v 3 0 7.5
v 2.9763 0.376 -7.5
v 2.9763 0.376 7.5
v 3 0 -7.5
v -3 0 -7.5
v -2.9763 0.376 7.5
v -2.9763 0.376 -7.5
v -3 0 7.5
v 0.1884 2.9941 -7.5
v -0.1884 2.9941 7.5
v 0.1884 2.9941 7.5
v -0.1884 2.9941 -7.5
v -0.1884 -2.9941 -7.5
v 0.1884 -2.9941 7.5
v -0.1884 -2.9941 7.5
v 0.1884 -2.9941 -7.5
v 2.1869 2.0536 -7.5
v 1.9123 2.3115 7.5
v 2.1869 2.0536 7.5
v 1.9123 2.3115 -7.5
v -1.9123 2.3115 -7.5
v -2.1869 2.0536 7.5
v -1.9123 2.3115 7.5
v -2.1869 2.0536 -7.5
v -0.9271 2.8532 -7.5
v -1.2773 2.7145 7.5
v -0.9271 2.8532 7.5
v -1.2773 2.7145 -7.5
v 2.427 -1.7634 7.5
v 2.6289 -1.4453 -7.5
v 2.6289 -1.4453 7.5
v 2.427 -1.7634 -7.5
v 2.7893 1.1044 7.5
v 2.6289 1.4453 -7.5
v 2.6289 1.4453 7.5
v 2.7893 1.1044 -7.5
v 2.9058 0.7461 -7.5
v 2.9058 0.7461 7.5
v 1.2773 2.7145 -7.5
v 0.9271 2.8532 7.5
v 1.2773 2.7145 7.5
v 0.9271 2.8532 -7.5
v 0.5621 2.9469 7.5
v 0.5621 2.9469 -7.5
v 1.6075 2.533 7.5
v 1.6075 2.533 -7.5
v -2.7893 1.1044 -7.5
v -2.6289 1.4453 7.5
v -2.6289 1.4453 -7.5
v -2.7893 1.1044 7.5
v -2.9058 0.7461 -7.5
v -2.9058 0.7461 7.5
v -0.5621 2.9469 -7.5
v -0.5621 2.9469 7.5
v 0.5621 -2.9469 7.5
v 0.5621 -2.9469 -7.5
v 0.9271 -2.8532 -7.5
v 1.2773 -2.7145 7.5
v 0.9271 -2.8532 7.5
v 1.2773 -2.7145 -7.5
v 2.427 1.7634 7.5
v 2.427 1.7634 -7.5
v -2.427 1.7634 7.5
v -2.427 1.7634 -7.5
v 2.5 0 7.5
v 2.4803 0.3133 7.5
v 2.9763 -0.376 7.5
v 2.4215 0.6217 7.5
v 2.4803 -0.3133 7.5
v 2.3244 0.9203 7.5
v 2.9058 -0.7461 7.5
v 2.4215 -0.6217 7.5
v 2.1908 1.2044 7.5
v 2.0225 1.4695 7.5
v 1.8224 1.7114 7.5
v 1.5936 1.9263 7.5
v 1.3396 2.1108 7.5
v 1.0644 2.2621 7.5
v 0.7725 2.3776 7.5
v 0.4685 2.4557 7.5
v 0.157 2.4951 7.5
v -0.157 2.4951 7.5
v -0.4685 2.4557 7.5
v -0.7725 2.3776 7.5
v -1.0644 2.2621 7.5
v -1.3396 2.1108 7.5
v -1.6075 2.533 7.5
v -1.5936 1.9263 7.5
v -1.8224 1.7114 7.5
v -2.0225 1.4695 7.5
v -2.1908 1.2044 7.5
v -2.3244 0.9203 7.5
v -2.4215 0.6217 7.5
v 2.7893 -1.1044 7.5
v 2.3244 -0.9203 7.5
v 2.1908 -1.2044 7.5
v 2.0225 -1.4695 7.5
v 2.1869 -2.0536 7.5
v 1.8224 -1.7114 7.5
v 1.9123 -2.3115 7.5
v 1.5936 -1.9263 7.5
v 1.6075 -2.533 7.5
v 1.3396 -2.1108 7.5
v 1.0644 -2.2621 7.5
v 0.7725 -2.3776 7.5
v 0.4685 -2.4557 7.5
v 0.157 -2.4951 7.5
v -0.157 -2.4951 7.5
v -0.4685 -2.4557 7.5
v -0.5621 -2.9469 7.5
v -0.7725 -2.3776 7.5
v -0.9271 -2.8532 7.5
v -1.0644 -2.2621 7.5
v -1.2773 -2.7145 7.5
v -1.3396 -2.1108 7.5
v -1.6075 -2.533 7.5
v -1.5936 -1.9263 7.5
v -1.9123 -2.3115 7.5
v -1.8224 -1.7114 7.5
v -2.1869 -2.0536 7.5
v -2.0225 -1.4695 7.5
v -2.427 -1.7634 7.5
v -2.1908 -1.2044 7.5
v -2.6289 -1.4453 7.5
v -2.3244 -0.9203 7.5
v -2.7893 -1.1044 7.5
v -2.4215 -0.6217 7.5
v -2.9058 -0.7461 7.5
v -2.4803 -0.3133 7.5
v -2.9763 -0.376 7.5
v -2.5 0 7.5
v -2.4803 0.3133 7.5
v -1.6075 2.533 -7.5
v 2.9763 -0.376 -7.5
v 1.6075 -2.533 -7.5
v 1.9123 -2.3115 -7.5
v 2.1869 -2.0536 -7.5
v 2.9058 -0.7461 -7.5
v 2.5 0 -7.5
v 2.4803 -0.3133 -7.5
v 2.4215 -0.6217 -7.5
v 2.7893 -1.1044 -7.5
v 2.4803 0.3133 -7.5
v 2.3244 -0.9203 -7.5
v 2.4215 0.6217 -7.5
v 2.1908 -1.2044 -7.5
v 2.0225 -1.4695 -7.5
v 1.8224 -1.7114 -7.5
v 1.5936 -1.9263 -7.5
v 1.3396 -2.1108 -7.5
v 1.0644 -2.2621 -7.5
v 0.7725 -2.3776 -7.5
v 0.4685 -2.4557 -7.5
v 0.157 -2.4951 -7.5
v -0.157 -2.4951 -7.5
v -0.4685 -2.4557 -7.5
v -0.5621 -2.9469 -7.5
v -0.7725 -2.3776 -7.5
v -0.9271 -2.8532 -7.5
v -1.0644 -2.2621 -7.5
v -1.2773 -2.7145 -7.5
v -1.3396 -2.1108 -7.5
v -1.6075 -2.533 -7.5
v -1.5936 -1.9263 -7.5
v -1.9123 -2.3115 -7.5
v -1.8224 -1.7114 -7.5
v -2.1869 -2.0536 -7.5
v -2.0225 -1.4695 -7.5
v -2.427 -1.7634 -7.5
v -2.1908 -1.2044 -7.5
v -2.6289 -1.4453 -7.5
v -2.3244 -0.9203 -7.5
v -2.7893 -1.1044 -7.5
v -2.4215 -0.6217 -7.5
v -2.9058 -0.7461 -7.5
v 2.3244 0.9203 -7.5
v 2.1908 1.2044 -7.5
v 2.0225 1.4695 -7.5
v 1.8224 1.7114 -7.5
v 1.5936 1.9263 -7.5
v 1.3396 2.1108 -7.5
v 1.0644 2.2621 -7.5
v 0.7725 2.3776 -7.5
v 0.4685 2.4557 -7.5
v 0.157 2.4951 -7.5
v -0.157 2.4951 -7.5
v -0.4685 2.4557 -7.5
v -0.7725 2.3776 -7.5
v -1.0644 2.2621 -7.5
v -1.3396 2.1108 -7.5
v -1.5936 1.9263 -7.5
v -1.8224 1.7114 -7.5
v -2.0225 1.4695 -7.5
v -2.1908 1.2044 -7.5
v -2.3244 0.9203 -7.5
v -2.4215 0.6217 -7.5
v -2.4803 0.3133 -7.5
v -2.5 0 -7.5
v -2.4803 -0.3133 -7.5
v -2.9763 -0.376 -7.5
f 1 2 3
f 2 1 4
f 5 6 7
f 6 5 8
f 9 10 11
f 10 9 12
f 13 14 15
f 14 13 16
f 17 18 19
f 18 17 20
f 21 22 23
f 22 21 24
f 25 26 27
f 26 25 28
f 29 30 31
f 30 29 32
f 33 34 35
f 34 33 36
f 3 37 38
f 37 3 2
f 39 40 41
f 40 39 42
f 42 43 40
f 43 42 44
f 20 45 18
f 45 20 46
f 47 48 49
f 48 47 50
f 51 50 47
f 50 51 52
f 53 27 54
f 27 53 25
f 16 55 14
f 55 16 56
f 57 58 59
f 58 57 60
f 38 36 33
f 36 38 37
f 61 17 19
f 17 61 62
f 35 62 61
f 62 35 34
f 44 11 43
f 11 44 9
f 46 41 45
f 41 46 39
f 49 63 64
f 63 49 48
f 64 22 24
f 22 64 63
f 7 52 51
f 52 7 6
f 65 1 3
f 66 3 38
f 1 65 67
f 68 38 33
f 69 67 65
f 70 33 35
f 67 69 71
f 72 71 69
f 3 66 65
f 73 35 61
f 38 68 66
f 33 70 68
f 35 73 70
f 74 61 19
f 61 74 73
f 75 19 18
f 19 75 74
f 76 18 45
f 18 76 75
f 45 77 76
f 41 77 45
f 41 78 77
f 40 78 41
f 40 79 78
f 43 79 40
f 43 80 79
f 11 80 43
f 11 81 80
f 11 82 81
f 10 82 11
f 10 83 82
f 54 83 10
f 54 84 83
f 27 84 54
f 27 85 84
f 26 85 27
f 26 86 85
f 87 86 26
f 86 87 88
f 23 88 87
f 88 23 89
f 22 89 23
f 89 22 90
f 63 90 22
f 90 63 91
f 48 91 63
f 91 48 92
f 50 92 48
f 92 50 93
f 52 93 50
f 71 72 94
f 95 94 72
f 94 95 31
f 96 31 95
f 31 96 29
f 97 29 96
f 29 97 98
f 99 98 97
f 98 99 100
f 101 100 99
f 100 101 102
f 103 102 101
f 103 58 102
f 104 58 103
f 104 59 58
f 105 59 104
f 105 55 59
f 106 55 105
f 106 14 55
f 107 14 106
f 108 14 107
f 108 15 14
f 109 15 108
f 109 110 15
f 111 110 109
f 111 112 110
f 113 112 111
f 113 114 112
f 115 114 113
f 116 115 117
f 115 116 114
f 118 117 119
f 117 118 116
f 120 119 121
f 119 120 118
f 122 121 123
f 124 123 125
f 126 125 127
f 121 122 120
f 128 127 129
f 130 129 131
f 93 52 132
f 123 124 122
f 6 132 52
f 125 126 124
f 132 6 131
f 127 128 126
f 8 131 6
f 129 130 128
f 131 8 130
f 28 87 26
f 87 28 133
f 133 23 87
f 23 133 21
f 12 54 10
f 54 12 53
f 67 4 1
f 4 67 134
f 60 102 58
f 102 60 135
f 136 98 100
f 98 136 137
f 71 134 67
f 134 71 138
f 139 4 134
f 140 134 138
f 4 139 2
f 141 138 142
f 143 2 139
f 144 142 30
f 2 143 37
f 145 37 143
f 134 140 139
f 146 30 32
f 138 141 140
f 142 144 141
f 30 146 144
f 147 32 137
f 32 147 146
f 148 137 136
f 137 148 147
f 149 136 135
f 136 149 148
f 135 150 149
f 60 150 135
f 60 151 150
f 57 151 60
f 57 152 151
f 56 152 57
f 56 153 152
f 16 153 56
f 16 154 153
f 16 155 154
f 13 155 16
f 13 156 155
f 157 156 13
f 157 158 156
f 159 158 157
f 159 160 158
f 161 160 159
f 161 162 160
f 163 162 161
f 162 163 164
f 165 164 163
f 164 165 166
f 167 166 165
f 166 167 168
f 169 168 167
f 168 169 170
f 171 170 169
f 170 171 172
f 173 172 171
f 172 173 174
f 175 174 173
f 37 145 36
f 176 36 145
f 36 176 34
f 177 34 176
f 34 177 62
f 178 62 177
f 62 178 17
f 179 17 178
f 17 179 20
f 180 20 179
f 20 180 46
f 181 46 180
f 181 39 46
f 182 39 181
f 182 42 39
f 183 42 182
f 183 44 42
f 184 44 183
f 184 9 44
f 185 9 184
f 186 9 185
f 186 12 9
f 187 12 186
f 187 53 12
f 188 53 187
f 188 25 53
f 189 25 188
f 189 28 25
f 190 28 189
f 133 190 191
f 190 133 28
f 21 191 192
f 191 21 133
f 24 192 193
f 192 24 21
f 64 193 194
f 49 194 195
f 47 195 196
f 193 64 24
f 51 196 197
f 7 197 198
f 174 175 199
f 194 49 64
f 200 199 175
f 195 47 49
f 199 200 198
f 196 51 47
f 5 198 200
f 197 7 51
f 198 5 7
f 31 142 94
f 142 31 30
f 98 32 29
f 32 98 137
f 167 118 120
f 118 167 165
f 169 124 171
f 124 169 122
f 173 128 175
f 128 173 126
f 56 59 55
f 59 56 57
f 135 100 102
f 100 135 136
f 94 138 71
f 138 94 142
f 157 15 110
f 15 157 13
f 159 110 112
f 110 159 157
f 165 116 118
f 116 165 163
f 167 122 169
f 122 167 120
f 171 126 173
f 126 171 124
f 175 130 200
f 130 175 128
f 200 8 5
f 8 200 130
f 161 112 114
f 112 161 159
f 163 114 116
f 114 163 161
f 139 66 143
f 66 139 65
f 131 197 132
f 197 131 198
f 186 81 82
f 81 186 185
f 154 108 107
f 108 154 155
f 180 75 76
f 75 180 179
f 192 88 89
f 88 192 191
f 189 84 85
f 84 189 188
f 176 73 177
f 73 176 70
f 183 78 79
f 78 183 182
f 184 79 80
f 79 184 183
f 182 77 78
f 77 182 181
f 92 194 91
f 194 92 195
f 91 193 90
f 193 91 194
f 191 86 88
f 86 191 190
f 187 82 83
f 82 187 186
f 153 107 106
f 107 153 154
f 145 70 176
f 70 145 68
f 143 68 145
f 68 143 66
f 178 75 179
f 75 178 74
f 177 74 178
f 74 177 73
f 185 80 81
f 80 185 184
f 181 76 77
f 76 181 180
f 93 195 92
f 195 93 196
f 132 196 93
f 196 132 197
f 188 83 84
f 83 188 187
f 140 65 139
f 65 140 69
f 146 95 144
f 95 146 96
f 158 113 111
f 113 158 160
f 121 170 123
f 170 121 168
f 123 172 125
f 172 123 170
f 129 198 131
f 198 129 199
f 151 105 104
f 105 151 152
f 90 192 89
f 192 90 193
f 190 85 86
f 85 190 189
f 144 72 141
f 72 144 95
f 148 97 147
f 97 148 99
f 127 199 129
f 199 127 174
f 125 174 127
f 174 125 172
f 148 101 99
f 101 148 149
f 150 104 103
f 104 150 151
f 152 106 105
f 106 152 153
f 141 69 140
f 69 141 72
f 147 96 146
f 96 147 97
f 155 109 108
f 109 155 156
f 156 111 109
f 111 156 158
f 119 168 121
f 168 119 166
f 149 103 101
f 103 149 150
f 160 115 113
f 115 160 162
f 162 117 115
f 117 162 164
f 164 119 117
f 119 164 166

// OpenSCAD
$fn = 50;


difference() {
	union() {
		translate(v = [0, 0, -7.5000000000]) {
			cylinder(h = 15, r = 3.0000000000);
		}
	}
	union() {
		translate(v = [0, 0, -100.0000000000]) {
			cylinder(h = 200, r = 2.5000000000);
		}
	}
}
